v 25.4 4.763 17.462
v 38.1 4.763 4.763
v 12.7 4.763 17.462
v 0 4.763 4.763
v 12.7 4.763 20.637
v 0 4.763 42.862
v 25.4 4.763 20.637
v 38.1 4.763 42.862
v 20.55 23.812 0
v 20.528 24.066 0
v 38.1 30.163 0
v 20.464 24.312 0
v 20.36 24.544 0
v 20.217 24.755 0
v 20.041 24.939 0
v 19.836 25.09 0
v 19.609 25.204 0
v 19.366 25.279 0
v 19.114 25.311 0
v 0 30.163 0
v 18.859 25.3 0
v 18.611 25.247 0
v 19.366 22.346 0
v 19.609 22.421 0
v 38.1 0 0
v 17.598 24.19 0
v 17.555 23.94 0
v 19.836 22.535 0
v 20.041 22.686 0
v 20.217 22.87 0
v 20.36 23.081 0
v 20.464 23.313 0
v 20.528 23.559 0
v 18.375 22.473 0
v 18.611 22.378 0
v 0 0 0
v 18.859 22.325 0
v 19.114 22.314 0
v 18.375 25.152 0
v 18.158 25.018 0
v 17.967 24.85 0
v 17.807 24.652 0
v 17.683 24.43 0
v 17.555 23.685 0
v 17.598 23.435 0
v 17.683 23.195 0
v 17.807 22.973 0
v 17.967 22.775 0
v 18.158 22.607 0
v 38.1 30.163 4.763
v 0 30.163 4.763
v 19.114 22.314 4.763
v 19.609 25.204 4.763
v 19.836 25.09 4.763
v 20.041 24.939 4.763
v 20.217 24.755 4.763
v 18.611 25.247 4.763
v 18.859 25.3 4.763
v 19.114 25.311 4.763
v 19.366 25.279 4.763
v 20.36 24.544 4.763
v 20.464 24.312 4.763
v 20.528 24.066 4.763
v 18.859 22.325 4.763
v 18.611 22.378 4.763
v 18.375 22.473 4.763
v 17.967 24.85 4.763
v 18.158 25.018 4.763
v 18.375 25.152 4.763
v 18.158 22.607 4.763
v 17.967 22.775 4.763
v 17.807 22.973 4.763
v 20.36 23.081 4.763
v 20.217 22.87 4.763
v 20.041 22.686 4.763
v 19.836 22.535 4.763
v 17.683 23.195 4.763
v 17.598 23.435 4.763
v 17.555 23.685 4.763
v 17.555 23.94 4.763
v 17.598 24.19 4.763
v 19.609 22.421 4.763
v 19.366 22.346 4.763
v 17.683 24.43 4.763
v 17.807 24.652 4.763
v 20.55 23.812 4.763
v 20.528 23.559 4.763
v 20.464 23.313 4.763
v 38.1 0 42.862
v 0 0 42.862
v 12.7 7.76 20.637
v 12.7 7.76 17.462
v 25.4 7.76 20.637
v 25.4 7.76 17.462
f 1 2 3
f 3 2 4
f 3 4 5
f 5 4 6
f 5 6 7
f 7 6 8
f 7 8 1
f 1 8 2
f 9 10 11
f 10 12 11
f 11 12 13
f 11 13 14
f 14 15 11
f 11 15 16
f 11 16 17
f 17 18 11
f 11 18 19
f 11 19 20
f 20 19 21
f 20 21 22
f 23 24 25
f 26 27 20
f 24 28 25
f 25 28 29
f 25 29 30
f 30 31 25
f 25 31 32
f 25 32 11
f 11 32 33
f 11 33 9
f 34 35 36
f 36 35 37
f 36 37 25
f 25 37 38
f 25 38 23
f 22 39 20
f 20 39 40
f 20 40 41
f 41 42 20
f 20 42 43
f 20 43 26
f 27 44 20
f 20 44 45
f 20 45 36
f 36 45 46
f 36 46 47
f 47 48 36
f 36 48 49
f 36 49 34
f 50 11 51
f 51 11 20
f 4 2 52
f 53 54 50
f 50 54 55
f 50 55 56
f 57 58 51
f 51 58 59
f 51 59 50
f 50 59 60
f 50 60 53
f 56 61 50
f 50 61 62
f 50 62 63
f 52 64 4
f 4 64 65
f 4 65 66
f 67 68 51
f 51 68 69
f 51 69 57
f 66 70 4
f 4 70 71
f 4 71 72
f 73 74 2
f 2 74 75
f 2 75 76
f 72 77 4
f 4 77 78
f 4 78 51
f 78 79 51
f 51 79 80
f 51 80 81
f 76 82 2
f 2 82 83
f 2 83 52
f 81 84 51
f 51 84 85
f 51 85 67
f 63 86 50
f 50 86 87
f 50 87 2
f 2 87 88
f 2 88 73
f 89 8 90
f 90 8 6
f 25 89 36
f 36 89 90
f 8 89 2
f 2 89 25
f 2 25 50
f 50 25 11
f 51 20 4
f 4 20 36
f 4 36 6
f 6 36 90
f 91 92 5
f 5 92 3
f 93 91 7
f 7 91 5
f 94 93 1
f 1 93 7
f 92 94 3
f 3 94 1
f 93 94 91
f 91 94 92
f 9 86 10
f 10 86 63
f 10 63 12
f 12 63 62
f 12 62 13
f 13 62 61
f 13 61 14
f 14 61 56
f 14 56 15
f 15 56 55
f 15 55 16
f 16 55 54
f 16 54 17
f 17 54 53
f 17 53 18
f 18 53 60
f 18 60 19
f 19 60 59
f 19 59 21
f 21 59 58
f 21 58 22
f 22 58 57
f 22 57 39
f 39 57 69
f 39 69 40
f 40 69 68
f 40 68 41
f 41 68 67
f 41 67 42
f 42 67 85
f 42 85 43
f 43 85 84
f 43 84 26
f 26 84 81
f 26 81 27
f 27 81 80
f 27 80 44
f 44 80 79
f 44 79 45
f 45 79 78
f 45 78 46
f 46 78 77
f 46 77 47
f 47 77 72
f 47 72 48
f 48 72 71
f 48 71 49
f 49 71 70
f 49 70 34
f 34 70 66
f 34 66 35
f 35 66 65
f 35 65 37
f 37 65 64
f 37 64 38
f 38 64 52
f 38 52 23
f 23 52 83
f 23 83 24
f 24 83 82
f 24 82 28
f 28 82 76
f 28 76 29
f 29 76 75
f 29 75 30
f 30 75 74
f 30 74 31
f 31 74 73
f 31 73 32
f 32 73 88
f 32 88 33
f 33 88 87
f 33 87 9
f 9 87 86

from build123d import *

# Parameters (mm, degrees)
BOSS_EXTRUDE1_DEPTH = 38.1
SKETCH2_W           = 12.7
SKETCH2_H           = 3.175
BOSS_EXTRUDE2_DEPTH = 2.9972
SKETCH3_R           = 1.499997
CUT_EXTRUDE1_DEPTH  = 62.749464826


with BuildPart() as part:
    # Sketch1 → Boss-Extrude1 (new body)
    with BuildSketch(Plane(origin=(0, 0, 0), x_dir=(0, 0, -1), z_dir=(1, 0, 0))):
        Polygon((0, 0), (-42.8625, 0), (-42.8625, 4.7625), (-4.7625, 4.7625), (-4.7625, 30.1625), (0, 30.1625), align=None)
    extrude(amount=BOSS_EXTRUDE1_DEPTH)

    # Sketch2 → Boss-Extrude2 (add)
    with BuildSketch(Plane(origin=(0, 4.7625, 0), x_dir=(1, 0, 0), z_dir=(0, 1, 0))):
        with Locations((19.05, -19.05)):
            Rectangle(SKETCH2_W, SKETCH2_H)
    extrude(amount=BOSS_EXTRUDE2_DEPTH)

    # Sketch3 → Cut-Extrude1 (cut, through all)
    with BuildSketch(Plane.XY.offset(4.7625)):
        with Locations((19.05, 23.8125)):
            Circle(SKETCH3_R)
    extrude(amount=-CUT_EXTRUDE1_DEPTH, mode=Mode.SUBTRACT)


solid = part.part
